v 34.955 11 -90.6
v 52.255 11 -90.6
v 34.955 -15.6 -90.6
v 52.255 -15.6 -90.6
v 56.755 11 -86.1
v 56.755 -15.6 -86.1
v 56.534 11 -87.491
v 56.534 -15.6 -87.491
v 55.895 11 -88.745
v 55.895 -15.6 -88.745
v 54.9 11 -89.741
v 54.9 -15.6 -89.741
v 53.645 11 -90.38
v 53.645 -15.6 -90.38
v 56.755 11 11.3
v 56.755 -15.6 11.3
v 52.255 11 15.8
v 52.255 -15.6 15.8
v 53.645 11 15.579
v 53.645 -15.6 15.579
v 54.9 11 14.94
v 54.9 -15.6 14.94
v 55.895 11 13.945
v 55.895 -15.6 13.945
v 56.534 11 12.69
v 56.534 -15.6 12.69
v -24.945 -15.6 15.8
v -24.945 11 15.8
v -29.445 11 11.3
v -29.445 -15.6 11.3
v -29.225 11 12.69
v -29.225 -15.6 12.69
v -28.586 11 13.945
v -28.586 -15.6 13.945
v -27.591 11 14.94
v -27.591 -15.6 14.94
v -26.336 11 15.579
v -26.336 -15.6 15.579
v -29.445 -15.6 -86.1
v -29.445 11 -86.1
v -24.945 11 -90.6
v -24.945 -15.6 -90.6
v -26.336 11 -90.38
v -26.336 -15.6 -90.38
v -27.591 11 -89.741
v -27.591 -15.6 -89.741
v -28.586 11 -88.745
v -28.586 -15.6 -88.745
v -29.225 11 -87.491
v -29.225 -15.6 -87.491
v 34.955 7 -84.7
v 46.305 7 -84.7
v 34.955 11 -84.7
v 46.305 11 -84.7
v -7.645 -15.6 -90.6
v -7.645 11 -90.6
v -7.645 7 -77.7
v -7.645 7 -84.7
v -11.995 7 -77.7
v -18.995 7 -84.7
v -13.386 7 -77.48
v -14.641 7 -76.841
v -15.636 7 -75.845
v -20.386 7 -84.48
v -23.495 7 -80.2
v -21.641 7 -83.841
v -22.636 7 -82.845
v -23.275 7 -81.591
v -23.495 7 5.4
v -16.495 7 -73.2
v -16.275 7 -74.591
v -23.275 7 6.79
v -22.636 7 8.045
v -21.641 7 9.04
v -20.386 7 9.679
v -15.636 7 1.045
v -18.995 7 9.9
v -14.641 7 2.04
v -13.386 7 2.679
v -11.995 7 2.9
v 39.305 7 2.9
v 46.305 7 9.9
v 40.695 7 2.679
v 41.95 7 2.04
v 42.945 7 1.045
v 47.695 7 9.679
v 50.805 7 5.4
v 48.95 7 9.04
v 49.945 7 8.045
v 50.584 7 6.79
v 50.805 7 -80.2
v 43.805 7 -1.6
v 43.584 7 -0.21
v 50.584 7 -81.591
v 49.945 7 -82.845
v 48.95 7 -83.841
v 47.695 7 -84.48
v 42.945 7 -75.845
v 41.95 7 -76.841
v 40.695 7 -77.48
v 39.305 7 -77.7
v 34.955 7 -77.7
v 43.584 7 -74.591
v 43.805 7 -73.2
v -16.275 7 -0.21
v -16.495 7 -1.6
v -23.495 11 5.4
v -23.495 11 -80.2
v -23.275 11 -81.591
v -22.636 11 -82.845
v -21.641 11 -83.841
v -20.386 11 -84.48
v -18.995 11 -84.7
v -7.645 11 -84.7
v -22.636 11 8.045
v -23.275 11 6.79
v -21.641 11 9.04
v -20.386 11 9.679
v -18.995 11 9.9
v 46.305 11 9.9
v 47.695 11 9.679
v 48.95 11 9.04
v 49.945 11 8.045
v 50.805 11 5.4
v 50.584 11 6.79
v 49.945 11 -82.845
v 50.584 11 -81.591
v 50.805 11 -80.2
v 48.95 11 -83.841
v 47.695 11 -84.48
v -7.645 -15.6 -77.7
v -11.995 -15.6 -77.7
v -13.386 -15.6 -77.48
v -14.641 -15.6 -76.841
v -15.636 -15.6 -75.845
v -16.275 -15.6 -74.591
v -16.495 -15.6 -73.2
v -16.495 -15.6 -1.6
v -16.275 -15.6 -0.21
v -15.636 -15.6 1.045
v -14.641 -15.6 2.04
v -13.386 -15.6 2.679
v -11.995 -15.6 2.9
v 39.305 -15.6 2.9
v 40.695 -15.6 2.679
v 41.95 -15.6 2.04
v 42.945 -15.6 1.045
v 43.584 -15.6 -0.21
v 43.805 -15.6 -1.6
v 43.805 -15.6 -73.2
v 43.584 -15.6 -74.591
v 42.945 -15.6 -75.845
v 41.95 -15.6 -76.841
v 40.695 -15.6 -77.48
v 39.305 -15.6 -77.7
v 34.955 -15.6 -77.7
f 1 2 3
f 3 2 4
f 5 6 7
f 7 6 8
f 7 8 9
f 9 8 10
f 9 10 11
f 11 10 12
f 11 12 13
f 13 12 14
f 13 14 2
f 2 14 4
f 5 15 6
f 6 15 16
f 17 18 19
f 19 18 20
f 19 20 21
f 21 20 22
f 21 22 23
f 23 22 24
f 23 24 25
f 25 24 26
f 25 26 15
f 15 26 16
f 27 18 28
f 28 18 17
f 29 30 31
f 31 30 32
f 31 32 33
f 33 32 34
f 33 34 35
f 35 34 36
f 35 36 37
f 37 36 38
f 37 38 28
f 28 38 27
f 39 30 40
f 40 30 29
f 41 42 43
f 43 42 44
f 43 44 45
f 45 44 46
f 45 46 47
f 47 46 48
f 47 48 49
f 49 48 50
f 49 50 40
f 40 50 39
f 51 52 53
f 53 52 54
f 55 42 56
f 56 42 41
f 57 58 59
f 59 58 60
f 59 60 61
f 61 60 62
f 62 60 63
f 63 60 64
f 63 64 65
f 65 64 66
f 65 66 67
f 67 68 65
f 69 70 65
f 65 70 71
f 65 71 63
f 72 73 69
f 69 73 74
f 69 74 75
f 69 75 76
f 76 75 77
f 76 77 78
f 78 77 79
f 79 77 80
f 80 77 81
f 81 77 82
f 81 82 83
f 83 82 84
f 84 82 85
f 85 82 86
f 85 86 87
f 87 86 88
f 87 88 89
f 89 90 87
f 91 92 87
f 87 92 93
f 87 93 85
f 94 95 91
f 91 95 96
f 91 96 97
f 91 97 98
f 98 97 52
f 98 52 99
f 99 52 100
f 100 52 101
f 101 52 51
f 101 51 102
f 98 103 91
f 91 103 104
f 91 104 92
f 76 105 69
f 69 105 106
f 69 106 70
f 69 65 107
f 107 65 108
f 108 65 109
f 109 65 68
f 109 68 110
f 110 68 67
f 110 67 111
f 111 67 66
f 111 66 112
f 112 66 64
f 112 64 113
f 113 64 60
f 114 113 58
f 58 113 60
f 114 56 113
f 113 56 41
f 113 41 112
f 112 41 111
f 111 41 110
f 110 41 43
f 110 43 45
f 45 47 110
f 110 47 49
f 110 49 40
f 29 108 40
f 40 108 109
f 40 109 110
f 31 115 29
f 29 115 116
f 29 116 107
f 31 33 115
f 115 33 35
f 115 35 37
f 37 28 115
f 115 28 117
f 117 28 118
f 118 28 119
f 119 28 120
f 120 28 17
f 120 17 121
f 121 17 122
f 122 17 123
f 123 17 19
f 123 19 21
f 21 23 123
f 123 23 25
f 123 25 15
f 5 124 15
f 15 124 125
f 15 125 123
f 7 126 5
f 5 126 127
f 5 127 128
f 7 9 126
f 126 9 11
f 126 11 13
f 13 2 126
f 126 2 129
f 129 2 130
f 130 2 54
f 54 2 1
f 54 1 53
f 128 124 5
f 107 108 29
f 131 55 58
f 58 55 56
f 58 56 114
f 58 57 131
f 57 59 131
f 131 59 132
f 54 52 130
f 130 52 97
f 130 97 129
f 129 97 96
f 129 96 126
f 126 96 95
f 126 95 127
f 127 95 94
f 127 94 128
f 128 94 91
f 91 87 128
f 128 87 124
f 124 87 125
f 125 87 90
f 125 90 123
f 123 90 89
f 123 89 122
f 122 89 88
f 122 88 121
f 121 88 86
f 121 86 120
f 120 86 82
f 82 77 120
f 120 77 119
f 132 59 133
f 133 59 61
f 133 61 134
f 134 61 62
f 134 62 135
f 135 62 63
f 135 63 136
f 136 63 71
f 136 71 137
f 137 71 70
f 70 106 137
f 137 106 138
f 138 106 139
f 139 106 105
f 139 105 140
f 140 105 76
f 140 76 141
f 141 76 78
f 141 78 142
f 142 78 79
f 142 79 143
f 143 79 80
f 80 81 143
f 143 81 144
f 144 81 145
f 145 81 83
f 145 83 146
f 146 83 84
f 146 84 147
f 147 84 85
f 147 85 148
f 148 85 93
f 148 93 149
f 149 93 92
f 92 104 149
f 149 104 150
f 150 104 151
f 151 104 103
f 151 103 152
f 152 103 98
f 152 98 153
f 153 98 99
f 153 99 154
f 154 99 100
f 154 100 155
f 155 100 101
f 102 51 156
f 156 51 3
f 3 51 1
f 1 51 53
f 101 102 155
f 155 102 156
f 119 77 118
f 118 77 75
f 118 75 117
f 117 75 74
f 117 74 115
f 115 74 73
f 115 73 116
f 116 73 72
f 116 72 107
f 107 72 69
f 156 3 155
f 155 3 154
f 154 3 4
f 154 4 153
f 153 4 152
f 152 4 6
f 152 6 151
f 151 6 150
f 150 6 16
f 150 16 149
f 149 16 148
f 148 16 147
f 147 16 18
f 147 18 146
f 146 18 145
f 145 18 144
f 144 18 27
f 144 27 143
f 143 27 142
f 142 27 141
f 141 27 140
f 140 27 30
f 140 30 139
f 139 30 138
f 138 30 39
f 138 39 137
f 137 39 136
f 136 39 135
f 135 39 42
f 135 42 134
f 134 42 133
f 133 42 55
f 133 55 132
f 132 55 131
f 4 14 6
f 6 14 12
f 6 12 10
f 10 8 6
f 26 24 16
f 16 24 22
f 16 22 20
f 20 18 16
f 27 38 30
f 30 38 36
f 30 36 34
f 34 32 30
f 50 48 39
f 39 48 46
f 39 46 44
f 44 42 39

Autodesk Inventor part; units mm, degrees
ref_plane "YZ Plane" through (0, 0, 0) normal (1, 0, 0) x (0, 1, 0)
ref_plane "XZ Plane" through (0, 0, 0) normal (0, 1, 0) x (-1, 0, 0)
ref_plane "XY Plane" through (0, 0, 0) normal (0, 0, 1) x (1, 0, 0)
sketch "Sketch1" plane through (0, 0, 0) normal (0, 1, 0) x (-1, 0, 0)
  line L0 (23.4955, 9.8996) -> (-50.8045, 9.8996)
  line L1 (-50.8045, 9.8996) -> (-50.8045, -84.7004)
  line L2 (-50.8045, -84.7004) -> (23.4955, -84.7004)
  line L3 (23.4955, -84.7004) -> (23.4955, 9.8996)
  line L4 (29.4455, 15.7996) -> (-56.7545, 15.7996)
  line L5 (-56.7545, 15.7996) -> (-56.7545, -90.6004)
  line L6 (-56.7545, -90.6004) -> (29.4455, -90.6004)
  line L7 (29.4455, -90.6004) -> (29.4455, 15.7996)
  line L8 (29.4455, -37.4004) -> (-56.7545, -37.4004) construction
  line L9 (-13.6545, -90.6004) -> (-13.6545, 15.7996) construction
  dimension "d0" = 94.6
  dimension "d1" = 74.3
  dimension "d2" = 106.4
  dimension "d3" = 86.2
extrude "Extrusion1" add sketch "Sketch1" along normal blind 6
fillet "Fillet1" radius 4.5 4 edges at (-23.4955, 3, 9.8996) (50.8045, 3, 9.8996) (50.8045, 3, -84.7004) (-23.4955, 3, -84.7004)
fillet "Fillet2" radius 4.5 4 edges at (56.7545, 3, 15.7996) (-29.4455, 3, 15.7996) (56.7545, 3, -90.6004) (-29.4455, 3, -90.6004)
sketch "Sketch2" plane through (0, 0, 0) normal (0, -1, 0) x (1, 0, 0)
  line L0 (50.8045, -80.2004) -> (50.8045, 5.3996) projected
  arc A0 (46.3045, -84.7004) -> (50.8045, -80.2004) centre (46.3045, -80.2004) ccw projected
  line L1 (-18.9955, -84.7004) -> (46.3045, -84.7004) projected
  arc A1 (-23.4955, -80.2004) -> (-18.9955, -84.7004) centre (-18.9955, -80.2004) ccw projected
  line L2 (-23.4955, 5.3996) -> (-23.4955, -80.2004) projected
  arc A2 (-18.9955, 9.8996) -> (-23.4955, 5.3996) centre (-18.9955, 5.3996) ccw projected
  line L3 (46.3045, 9.8996) -> (-18.9955, 9.8996) projected
  arc A3 (50.8045, 5.3996) -> (46.3045, 9.8996) centre (46.3045, 5.3996) ccw projected
  line L4 (43.8045, -77.7004) -> (-16.4955, -77.7004)
  line L5 (-16.4955, -77.7004) -> (-16.4955, 2.8996)
  line L6 (-16.4955, 2.8996) -> (43.8045, 2.8996)
  line L7 (43.8045, 2.8996) -> (43.8045, -77.7004)
  line L8 (13.6545, -84.7004) -> (13.6545, 9.8996) construction
  line L9 (46.3045, 9.8996) -> (-18.9955, 9.8996) construction
  line L10 (50.8045, -80.2004) -> (50.8045, 5.3996) construction
  line L11 (50.8045, -37.4004) -> (-23.4955, -37.4004) construction
  line L12 (56.7545, 11.2996) -> (56.7545, -86.1004) construction
  point P0 (0, 0)
  dimension "d8" = 5.95
  dimension "d9" = 7
  dimension "d10" = 7
extrude "Extrusion2" add sketch "Sketch2" along normal blind 6
fillet "Fillet3" radius 4.5 4 edges at (43.8045, -3, -77.7004) (43.8045, -3, 2.8996) (-16.4955, -3, 2.8996) (-16.4955, -3, -77.7004)
sketch "Sketch3" plane through (0, 0, 0) normal (0, 1, 0) x (1, 0, 0)
  arc A0 (46.3045, -9.8996) -> (50.8045, -5.3996) centre (46.3045, -5.3996) ccw projected
  line L0 (50.8045, 80.2004) -> (50.8045, -5.3996) projected
  arc A1 (50.8045, 80.2004) -> (46.3045, 84.7004) centre (46.3045, 80.2004) ccw projected
  line L1 (-18.9955, 84.7004) -> (46.3045, 84.7004) projected
  arc A2 (-18.9955, 84.7004) -> (-23.4955, 80.2004) centre (-18.9955, 80.2004) ccw projected
  line L2 (-23.4955, -5.3996) -> (-23.4955, 80.2004) projected
  arc A3 (-23.4955, -5.3996) -> (-18.9955, -9.8996) centre (-18.9955, -5.3996) ccw projected
  line L3 (46.3045, -9.8996) -> (-18.9955, -9.8996) projected
  arc A4 (43.8045, 73.2004) -> (39.3045, 77.7004) centre (39.3045, 73.2004) ccw projected
  line L4 (43.8045, 1.6004) -> (43.8045, 73.2004) projected
  arc A5 (39.3045, -2.8996) -> (43.8045, 1.6004) centre (39.3045, 1.6004) ccw projected
  line L5 (-11.9955, -2.8996) -> (39.3045, -2.8996) projected
  arc A6 (-16.4955, 1.6004) -> (-11.9955, -2.8996) centre (-11.9955, 1.6004) ccw projected
  line L6 (-16.4955, 73.2004) -> (-16.4955, 1.6004) projected
  arc A7 (-11.9955, 77.7004) -> (-16.4955, 73.2004) centre (-11.9955, 73.2004) ccw projected
  line L7 (39.3045, 77.7004) -> (-11.9955, 77.7004) projected
  point P0 (0, 0)
extrude "Extrusion3" add sketch "Sketch3" along normal blind 2
ref_plane "Work Plane1" through (-23.4955, 6, -84.7004) normal (0, 0.7071068, -0.7071068) x (1, 0, 0)
sketch "Sketch5" plane through (-23.4955, 6, -84.7004) normal (0, 0.7071068, -0.7071068) x (1, 0, 0)
  line L0 (4.5, 0) -> (69.8, 0) projected
  line L1 (37.15, 0) -> (37.15, -42.3796) construction
  circle A0 centre (37.15, 1.34) radius 1.34 construction
  line L2 (37.15, 1.34) -> (37.15, -18.66) construction
  line L3 (38.49, 1.34) -> (38.49, -18.66)
  line L4 (35.81, -18.66) -> (35.81, 1.34)
  arc A1 (38.49, 1.34) -> (35.81, 1.34) centre (37.15, 1.34) ccw
  arc A2 (35.81, -18.66) -> (38.49, -18.66) centre (37.15, -18.66) ccw
  point P0 (23.4955, -55.6496)
  point P1 (37.15, -8.66)
  dimension "d20" = 2.68
  dimension "d19" = 90
  dimension "d21" = 20
  dimension "d22" = 2.68
extrude "Extrusion5" cut sketch "Sketch5" along normal mid plane 51.82
sketch "Sketch6" plane through (-23.4955, 6, -84.7004) normal (0, 0.7071068, -0.7071068) x (1, 0, 0)
  arc A0 (38.49, 1.34) -> (35.81, 1.34) centre (37.15, 1.34) ccw projected
  line L0 (38.49, 0) -> (38.49, 1.34) projected
  arc A1 (38.49, 1.34) -> (35.81, 1.34) centre (37.15, 1.34) ccw projected
  line L1 (35.81, 1.34) -> (35.81, 0) projected
  line L2 (4.5, 0) -> (35.81, 0) projected
  line L3 (4.5, 2.8284) -> (4.5, 0) projected
  line L4 (4.5, 2.8284) -> (69.8, 2.8284) projected
  line L5 (69.8, 0) -> (69.8, 2.8284) projected
  line L6 (38.49, 0) -> (69.8, 0) projected
  line L7 (75.75, 8.4146) -> (-1.45, 8.4146) projected
  line L8 (74.9473, 2.68) -> (-18.0058, 2.68) construction
  line L9 (0, -55.225) -> (0, 5.3033) construction
  line L10 (90.8097, 9.1284) -> (-67.1811, 9.1284) construction
  line L11 (37.15, 2.68) -> (37.15, 37.6448) construction
  line L12 (58.45, 9.1284) -> (15.85, 9.1284)
  line L13 (15.85, 9.1284) -> (15.85, 13.1284)
  line L14 (15.85, 13.1284) -> (58.45, 13.1284)
  line L15 (58.45, 13.1284) -> (58.45, 9.1284)
  point P0 (23.4955, -55.6496)
  dimension "d25" = 6.3
  dimension "d26" = 42.6
  dimension "d27" = 4
extrude "Extrusion6" add sketch "Sketch6" along normal blind 35 contours L12 L13 L14 L15
sketch "Sketch7" plane through (-23.4955, 30.7487, -109.4492) normal (0, 0.7071068, -0.7071068) x (-1, 0, 0)
  line L0 (-15.85, -13.1284) -> (-15.85, -9.1284) projected
  line L1 (-58.45, -9.1284) -> (-58.45, -13.1284) projected
  point P0 (-23.4955, 55.6496)
  point P1 (-15.85, -11.1284)
  point P2 (-58.45, -11.1284)
  dimension "d30" = 42.6
sketch "Sketch8" plane through (34.9545, -3.2832, -93.9836) normal (1, 0, 0) x (0, 0.7071068, -0.7071068)
  line L0 (-0.0707, 4.7139) -> (-3.2527, 7.8958) projected
  line L1 (0.9899, 12.1385) -> (4.1719, 8.9565) projected
  line L2 (0, 0) -> (35, 0) projected
  line L3 (-0.0707, 4.7139) -> (-14.2134, -9.4288) construction
  line L4 (0, 4) -> (35, 4) projected
  line L5 (0, 4) -> (0, 0) projected
  line L6 (4.1719, 8.9565) -> (-4.7846, 0)
  line L7 (-4.7846, 0) -> (0, 0)
  line L8 (0, 0) -> (0, 4) projected
  line L9 (0, 0) -> (0, 4)
  line L10 (4.1719, 8.9565) -> (4.1719, 4)
  line L11 (0, 4) -> (35, 4) projected
  line L12 (4.1719, 4) -> (0, 4)
  line L13 (-0.0707, 4.7139) -> (4.1719, 8.9565) projected
  point P0 (-64.1349, 68.778)
  point P1 (4.1719, 4)
extrude "Extrusion7" add sketch "Sketch8" against normal blind 42.6
sketch "Sketch9" plane through (34.9545, -6.6664, -90.6004) normal (1, 0, 0) x (0, 0, -1)
  line L0 (0, 6.6664) -> (0, 0) projected
  line L1 (0, 0) -> (28.1319, 28.1319) projected
  line L2 (0, 0) -> (0, 6.6664) projected
  line L3 (0, 0) -> (0, -20)
  line L4 (0, -20) -> (5, -20)
  line L5 (5, -20) -> (5, 5)
  line L6 (0, 0) -> (28.1319, 28.1319) projected
  line L7 (5, 5) -> (0, 0)
  point P0 (-90.6004, 6.6664)
  point P1 (5, 5)
  dimension "d33" = 5
  dimension "d34" = 20
extrude "Extrusion8" add sketch "Sketch9" against normal blind 42.6
sketch "Sketch10" plane through (-7.6455, 24.294, -115.9039) normal (0, 0.7071068, 0.7071068) x (1, 0, 0)
  line L0 (0, -30.8281) -> (42.6, -30.8281) projected
  line L1 (42.6, -30.8281) -> (42.6, 0) projected
  line L2 (0, 0) -> (42.6, 0) projected
  line L3 (0, -30.8281) -> (0, 0) projected
  line L4 (42.6, -30.8281) -> (0, -30.8281) projected
  line L5 (0, -30.8281) -> (5, -30.8281)
  line L6 (5, -30.8281) -> (5, 0)
  line L7 (5, 0) -> (0, 0)
  line L8 (0, 0) -> (0, -30.8281)
  line L9 (42.6, 0) -> (0, 0) projected
  line L10 (37.6, 0) -> (42.6, 0)
  line L11 (42.6, 0) -> (42.6, -30.8281)
  line L12 (42.6, -30.8281) -> (37.6, -30.8281)
  line L13 (37.6, -30.8281) -> (37.6, 0)
  point P0 (7.6455, -99.1349)
  point P1 (37.6, 0)
  point P2 (37.6, -30.8281)
  dimension "d37" = 5
  dimension "d38" = 5
extrude "Extrusion9" add sketch "Sketch10" along normal blind 19 contours L3 L2 L6 L0 | L13 L2 L1 L0
sketch "Sketch11" plane through (-7.6455, 37.729, -102.4689) normal (0, 0.7071068, 0.7071068) x (1, 0, 0)
  line L0 (0, -30.8281) -> (5, -30.8281) projected
  line L1 (5, 0) -> (0, 0) projected
  point P0 (7.6455, -99.1349)
  point P1 (2.5, 0)
  point P2 (2.5, -30.8281)
  dimension "d41" = 30.8281
sketch "Sketch12" plane through (-2.6455, 2.4952, -94.1052) normal (1, 0, 0) x (0, -0.7071068, -0.7071068)
  line L0 (0, 30.8281) -> (0, 0) projected
  line L1 (0, 30.8281) -> (-19, 30.8281) projected
  line L2 (-19, 0) -> (-19, 30.8281) projected
  line L3 (-4.9565, 0) -> (-19, 0) projected
  line L4 (0, 0) -> (-4.9565, 0) projected
  line L5 (-19, 30.8281) -> (-15, 30.8281)
  line L6 (-15, 30.8281) -> (-15, 0)
  line L7 (-15, 0) -> (-19, 0)
  line L8 (-19, 0) -> (-19, 30.8281)
  point P0 (-64.778, -68.3068)
  dimension "d42" = 15
extrude "Extrusion10" add sketch "Sketch12" along normal blind 8.5 contours L6 L3 L2 L1
sketch "Sketch13" plane through (29.9545, 2.4952, -94.1052) normal (-1, 0, 0) x (0, 0.7071068, 0.7071068)
  line L0 (0, 0) -> (0, 30.8281) projected
  line L1 (4.9565, 0) -> (0, 0) projected
  line L2 (4.9565, 0) -> (19, 0) projected
  line L3 (19, 30.8281) -> (19, 0) projected
  line L4 (0, 30.8281) -> (19, 30.8281) projected
  line L5 (19, 30.8281) -> (7.45, 30.8281)
  line L6 (7.45, 30.8281) -> (7.45, 0)
  line L7 (7.45, 0) -> (19, 0)
  line L8 (19, 0) -> (19, 30.8281)
  point P0 (64.778, -68.3068)
  point P1 (7.45, 30.8281)
  dimension "d45" = 7.45
extrude "Extrusion11" add sketch "Sketch13" along normal blind 8.5 contours L4 L3 L2 L6
sketch "Sketch14" plane through (34.9545, -26.6664, -90.6004) normal (1, 0, 0) x (0, 0, -1)
  line L0 (5, 25) -> (28.1319, 48.1319) projected
  line L1 (28.1319, 48.1319) -> (11.8685, 64.3954) projected
  line L2 (-9.9303, 42.5967) -> (11.8685, 64.3954) projected
  line L3 (0, 32.6664) -> (-9.9303, 42.5967) projected
  line L4 (0, 26.6664) -> (0, 32.6664) projected
  line L5 (0, 26.6664) -> (0, 0) projected
  line L6 (0, 0) -> (5, 0) projected
  line L7 (5, 0) -> (5, 25) projected
  line L8 (0, 32.6664) -> (3.5048, 29.1616) construction
  line L9 (-9.9303, 42.5967) -> (11.8685, 64.3954) construction
  line L10 (-7.1018, 39.7682) -> (14.6969, 61.567) construction
  line L11 (0, 32.6664) -> (-1.7632, 34.4296) projected
  line L12 (0, 52.5269) -> (0, 32.6664)
  line L13 (-1.7632, 34.4296) -> (-9.9303, 42.5967) projected
  line L14 (0, 32.6664) -> (-9.9303, 42.5967)
  line L15 (-9.9303, 42.5967) -> (0, 52.5269)
  point P0 (-90.6004, 26.6664)
  point P1 (11.8685, 64.3954)
  point P2 (0, 52.5269)
extrude "Extrusion12" cut sketch "Sketch14" against normal blind 100 contours L12 L3 L2
sketch "Sketch15" plane through (-23.4955, 30.7487, -109.4492) normal (0, 0.7071068, -0.7071068) x (-1, 0, 0)
  line L0 (-58.45, -13.1284) -> (-15.85, -13.1284) projected
  line L1 (-15.85, -13.1284) -> (-15.85, 9.8716) projected
  line L2 (-15.85, 9.8716) -> (-29.35, 9.8716) projected
  line L3 (-29.35, 5.8716) -> (-29.35, 9.8716) projected
  line L4 (-20.85, 5.8716) -> (-29.35, 5.8716) projected
  line L5 (-20.85, -9.1284) -> (-20.85, 5.8716) projected
  line L6 (-20.85, -9.1284) -> (-53.45, -9.1284) projected
  line L7 (-53.45, -9.1284) -> (-53.45, -1.6784) projected
  line L8 (-53.45, -1.6784) -> (-44.95, -1.6784) projected
  line L9 (-44.95, 9.8716) -> (-44.95, -1.6784) projected
  line L10 (-58.45, 9.8716) -> (-44.95, 9.8716) projected
  line L11 (-58.45, -13.1284) -> (-58.45, 9.8716) projected
  line L12 (-58.45, 9.8716) -> (-44.95, 9.8716)
  line L13 (-44.95, 9.8716) -> (-44.95, 2.3216)
  line L14 (-44.95, 2.3216) -> (-58.45, 2.3216)
  line L15 (-58.45, 2.3216) -> (-58.45, 9.8716)
  point P0 (-23.4955, 55.6496)
  point P1 (-51.7, 2.3216)
  point P2 (-58.45, 2.3216)
  dimension "d52" = 4
extrude "Extrusion13" cut sketch "Sketch15" against normal blind 100 contours L11 L10 L9 L14
sketch "Sketch16" plane through (-2.6455, 24.294, -115.9039) normal (0, 0.7071068, 0.7071068) x (1, 0, 0)
  line L0 (32.6, -30.8281) -> (0, -30.8281) projected
  line L1 (8.5, -20.7846) -> (0, -20.7846) projected
  point P0 (2.6455, -99.1349)
  dimension "d55" = 10.0435
sketch "Sketch17" plane through (-2.6455, 6, -90.6004) normal (1, 0, 0) x (0, 0, -1)
  line L0 (0, 14.2037) -> (0, 0) projected
  line L1 (3.5048, -3.5048) -> (0, 0) projected
  line L2 (25.3035, 18.294) -> (3.5048, -3.5048) projected
  line L3 (25.3035, 18.294) -> (14.6969, 28.9006) projected
  line L4 (14.6969, 28.9006) -> (0, 14.2037) projected
  line L5 (5.6261, -1.3835) -> (3.5048, -3.5048)
  line L6 (3.5048, -3.5048) -> (0, 0)
  line L7 (0, 0) -> (2.1213, 2.1213)
  line L8 (2.1213, 2.1213) -> (5.6261, -1.3835)
  point P0 (-90.6004, -6)
  dimension "d56" = 3
extrude "Extrusion14" add sketch "Sketch17" along normal blind 34.75 contours L7 L8 L2 L1
sketch "Sketch18" plane through (0, -6, 0) normal (0, -1, 0) x (1, 0, 0)
  line L0 (-18.9955, -84.7004) -> (46.3045, -84.7004) projected
  line L1 (39.3045, -77.7004) -> (-11.9955, -77.7004) projected
  line L2 (-7.6455, -95.6004) -> (-7.6455, -90.6004) projected
  line L3 (34.9545, -90.6004) -> (34.9545, -95.6004) projected
  line L4 (-18.9955, -84.7004) -> (46.3045, -84.7004) projected
  line L5 (-7.6455, -84.7004) -> (34.9545, -84.7004)
  line L6 (34.9545, -84.7004) -> (34.9545, -77.7004)
  line L7 (34.9545, -77.7004) -> (-7.6455, -77.7004)
  line L8 (-7.6455, -77.7004) -> (-7.6455, -84.7004)
  point P0 (0, 0)
extrude "Extrusion15" add sketch "Sketch18" along normal blind 20
fillet "Fillet5" radius 5 2 edges at (5.8545, 36.3148, -103.8831) (21.4545, 30.9761, -109.2218)
sketch "Sketch19" plane through (0, 6, 0) normal (0, 1, 0) x (1, 0, 0)
  line L0 (14.9945, 86.5955) -> (14.9945, 84.7004) projected
  line L1 (14.9945, 84.7004) -> (46.3045, 84.7004) projected
  arc A0 (50.8045, 80.2004) -> (46.3045, 84.7004) centre (46.3045, 80.2004) ccw projected
  line L2 (50.8045, 80.2004) -> (50.8045, -5.3996) projected
  arc A1 (46.3045, -9.8996) -> (50.8045, -5.3996) centre (46.3045, -5.3996) ccw projected
  line L3 (46.3045, -9.8996) -> (-18.9955, -9.8996) projected
  arc A2 (-23.4955, -5.3996) -> (-18.9955, -9.8996) centre (-18.9955, -5.3996) ccw projected
  line L4 (-23.4955, -5.3996) -> (-23.4955, 80.2004) projected
  arc A3 (-18.9955, 84.7004) -> (-23.4955, 80.2004) centre (-18.9955, 80.2004) ccw projected
  line L5 (-18.9955, 84.7004) -> (12.3145, 84.7004) projected
  line L6 (12.3145, 84.7004) -> (12.3145, 86.5955) projected
  ellipse E0 centre (13.6545, 86.5955) end of major axis (13.6545, 88.4905) minor radius 1.34 (14.9945, 86.5955) -> (12.3145, 86.5955) ccw projected
  arc A4 (-24.9455, 90.6004) -> (-29.4455, 86.1004) centre (-24.9455, 86.1004) ccw projected
  line L7 (-29.4455, 86.1004) -> (-29.4455, -11.2996) projected
  arc A5 (-29.4455, -11.2996) -> (-24.9455, -15.7996) centre (-24.9455, -11.2996) ccw projected
  line L8 (-24.9455, -15.7996) -> (52.2545, -15.7996) projected
  arc A6 (52.2545, -15.7996) -> (56.7545, -11.2996) centre (52.2545, -11.2996) ccw projected
  line L9 (56.7545, -11.2996) -> (56.7545, 86.1004) projected
  arc A7 (56.7545, 86.1004) -> (52.2545, 90.6004) centre (52.2545, 86.1004) ccw projected
  line L10 (52.2545, 90.6004) -> (34.9545, 90.6004) projected
  line L11 (34.9545, 90.6004) -> (29.9545, 90.6004) projected
  line L12 (29.9545, 90.6004) -> (-2.6455, 90.6004) projected
  line L13 (-2.6455, 90.6004) -> (-7.6455, 90.6004) projected
  line L14 (-7.6455, 90.6004) -> (-24.9455, 90.6004) projected
  point P0 (0, 0)
extrude "Extrusion16" add sketch "Sketch19" along normal blind 5
sketch "Sketch20" plane through (0, 2, 0) normal (0, 1, 0) x (1, 0, 0)
  line L0 (14.9945, 82.5955) -> (14.9945, 77.7004) projected
  line L1 (14.9945, 77.7004) -> (39.3045, 77.7004) projected
  arc A0 (43.8045, 73.2004) -> (39.3045, 77.7004) centre (39.3045, 73.2004) ccw projected
  line L2 (43.8045, 73.2004) -> (43.8045, 1.6004) projected
  arc A1 (39.3045, -2.8996) -> (43.8045, 1.6004) centre (39.3045, 1.6004) ccw projected
  line L3 (39.3045, -2.8996) -> (-11.9955, -2.8996) projected
  arc A2 (-16.4955, 1.6004) -> (-11.9955, -2.8996) centre (-11.9955, 1.6004) ccw projected
  line L4 (-16.4955, 1.6004) -> (-16.4955, 73.2004) projected
  arc A3 (-11.9955, 77.7004) -> (-16.4955, 73.2004) centre (-11.9955, 73.2004) ccw projected
  line L5 (-11.9955, 77.7004) -> (12.3145, 77.7004) projected
  line L6 (12.3145, 77.7004) -> (12.3145, 82.5955) projected
  ellipse E0 centre (13.6545, 82.5955) end of major axis (13.6545, 84.4905) minor radius 1.34 (14.9945, 82.5955) -> (12.3145, 82.5955) ccw projected
  line L7 (46.3045, -9.8996) -> (-18.9955, -9.8996) projected
  arc A4 (46.3045, -9.8996) -> (50.8045, -5.3996) centre (46.3045, -5.3996) ccw projected
  line L8 (50.8045, 80.2004) -> (50.8045, -5.3996) projected
  arc A5 (50.8045, 80.2004) -> (46.3045, 84.7004) centre (46.3045, 80.2004) ccw projected
  line L9 (-18.9955, 84.7004) -> (46.3045, 84.7004) projected
  arc A6 (-18.9955, 84.7004) -> (-23.4955, 80.2004) centre (-18.9955, 80.2004) ccw projected
  line L10 (-23.4955, -5.3996) -> (-23.4955, 80.2004) projected
  arc A7 (-23.4955, -5.3996) -> (-18.9955, -9.8996) centre (-18.9955, -5.3996) ccw projected
  point P0 (0, 0)
extrude "Extrusion17" add sketch "Sketch20" along normal blind 5
sketch "Sketch21" plane through (0, 11, 0) normal (0, 1, 0) x (1, 0, 0)
  line L0 (-7.6455, 118.7324) -> (-7.6455, 102.4689) projected
  line L1 (34.9545, 118.7324) -> (34.9545, 107.8076) projected
  line L2 (34.9545, 118.7324) -> (-7.6455, 118.7324) projected
  line L3 (-11.9955, 77.7004) -> (12.3145, 77.7004) projected
  line L4 (14.9945, 77.7004) -> (39.3045, 77.7004) projected
  line L5 (34.9545, 77.7004) -> (-7.6455, 77.7004) projected
  line L6 (-7.6455, 118.7324) -> (34.9545, 118.7324)
  line L7 (34.9545, 118.7324) -> (34.9545, 77.7004)
  line L8 (34.9545, 77.7004) -> (-7.6455, 77.7004)
  line L9 (-7.6455, 77.7004) -> (-7.6455, 118.7324)
  point P0 (0, 0)
extrude "Extrusion18" cut sketch "Sketch21" along normal mid plane 100
sketch "Sketch22" plane through (0, 0, 0) normal (0, -1, 0) x (1, 0, 0)
  line L0 (87.9396, -104.4246) -> (-53.0165, -104.4246)
  line L1 (-53.0165, -104.4246) -> (-53.0165, 23.665)
  line L2 (-53.0165, 23.665) -> (87.9396, 23.665)
  line L3 (87.9396, 23.665) -> (87.9396, -104.4246)
  point P0 (0, 0)
extrude "Extrusion19" cut sketch "Sketch22" along normal blind 100
sketch "Sketch23" plane through (0, 0, 0) normal (0, -1, 0) x (1, 0, 0)
  line L0 (34.9545, -77.7004) -> (34.9545, -90.6004) projected
  line L1 (52.2545, -90.6004) -> (34.9545, -90.6004) projected
  arc A0 (52.2545, -90.6004) -> (56.7545, -86.1004) centre (52.2545, -86.1004) ccw projected
  line L2 (56.7545, 11.2996) -> (56.7545, -86.1004) projected
  arc A1 (56.7545, 11.2996) -> (52.2545, 15.7996) centre (52.2545, 11.2996) ccw projected
  line L3 (-24.9455, 15.7996) -> (52.2545, 15.7996) projected
  arc A2 (-24.9455, 15.7996) -> (-29.4455, 11.2996) centre (-24.9455, 11.2996) ccw projected
  line L4 (-29.4455, -86.1004) -> (-29.4455, 11.2996) projected
  arc A3 (-29.4455, -86.1004) -> (-24.9455, -90.6004) centre (-24.9455, -86.1004) ccw projected
  line L5 (-7.6455, -90.6004) -> (-24.9455, -90.6004) projected
  line L6 (-7.6455, -77.7004) -> (-7.6455, -90.6004) projected
  line L7 (-11.9955, -77.7004) -> (-7.6455, -77.7004) projected
  arc A4 (-16.4955, -73.2004) -> (-11.9955, -77.7004) centre (-11.9955, -73.2004) ccw projected
  line L8 (-16.4955, -1.6004) -> (-16.4955, -73.2004) projected
  arc A5 (-11.9955, 2.8996) -> (-16.4955, -1.6004) centre (-11.9955, -1.6004) ccw projected
  line L9 (39.3045, 2.8996) -> (-11.9955, 2.8996) projected
  arc A6 (43.8045, -1.6004) -> (39.3045, 2.8996) centre (39.3045, -1.6004) ccw projected
  line L10 (43.8045, -73.2004) -> (43.8045, -1.6004) projected
  arc A7 (39.3045, -77.7004) -> (43.8045, -73.2004) centre (39.3045, -73.2004) ccw projected
  line L11 (34.9545, -77.7004) -> (39.3045, -77.7004) projected
  point P0 (0, 0)
extrude "Extrusion20" add sketch "Sketch23" along normal blind 5.6
sketch "Sketch24" plane through (0, -5.6, 0) normal (0, -1, 0) x (1, 0, 0)
  point P0 (0, 0)
sketch "Sketch25" plane through (0, -5.6, 0) normal (0, -1, 0) x (1, 0, 0)
  line L0 (34.9545, -77.7004) -> (34.9545, -90.6004) projected
  line L1 (34.9545, -90.6004) -> (52.2545, -90.6004) projected
  arc A0 (52.2545, -90.6004) -> (56.7545, -86.1004) centre (52.2545, -86.1004) ccw projected
  line L2 (56.7545, -86.1004) -> (56.7545, 11.2996) projected
  arc A1 (56.7545, 11.2996) -> (52.2545, 15.7996) centre (52.2545, 11.2996) ccw projected
  line L3 (52.2545, 15.7996) -> (-24.9455, 15.7996) projected
  arc A2 (-24.9455, 15.7996) -> (-29.4455, 11.2996) centre (-24.9455, 11.2996) ccw projected
  line L4 (-29.4455, 11.2996) -> (-29.4455, -86.1004) projected
  arc A3 (-29.4455, -86.1004) -> (-24.9455, -90.6004) centre (-24.9455, -86.1004) ccw projected
  line L5 (-24.9455, -90.6004) -> (-7.6455, -90.6004) projected
  line L6 (-7.6455, -90.6004) -> (-7.6455, -77.7004) projected
  line L7 (-7.6455, -77.7004) -> (-11.9955, -77.7004) projected
  arc A4 (-16.4955, -73.2004) -> (-11.9955, -77.7004) centre (-11.9955, -73.2004) ccw projected
  line L8 (-16.4955, -73.2004) -> (-16.4955, -1.6004) projected
  arc A5 (-11.9955, 2.8996) -> (-16.4955, -1.6004) centre (-11.9955, -1.6004) ccw projected
  line L9 (-11.9955, 2.8996) -> (39.3045, 2.8996) projected
  arc A6 (43.8045, -1.6004) -> (39.3045, 2.8996) centre (39.3045, -1.6004) ccw projected
  line L10 (43.8045, -1.6004) -> (43.8045, -73.2004) projected
  arc A7 (39.3045, -77.7004) -> (43.8045, -73.2004) centre (39.3045, -73.2004) ccw projected
  line L11 (39.3045, -77.7004) -> (34.9545, -77.7004) projected
  point P0 (0, 0)
extrude "Extrusion21" add sketch "Sketch25" along normal blind 10
properties part number "Upper_frame"
